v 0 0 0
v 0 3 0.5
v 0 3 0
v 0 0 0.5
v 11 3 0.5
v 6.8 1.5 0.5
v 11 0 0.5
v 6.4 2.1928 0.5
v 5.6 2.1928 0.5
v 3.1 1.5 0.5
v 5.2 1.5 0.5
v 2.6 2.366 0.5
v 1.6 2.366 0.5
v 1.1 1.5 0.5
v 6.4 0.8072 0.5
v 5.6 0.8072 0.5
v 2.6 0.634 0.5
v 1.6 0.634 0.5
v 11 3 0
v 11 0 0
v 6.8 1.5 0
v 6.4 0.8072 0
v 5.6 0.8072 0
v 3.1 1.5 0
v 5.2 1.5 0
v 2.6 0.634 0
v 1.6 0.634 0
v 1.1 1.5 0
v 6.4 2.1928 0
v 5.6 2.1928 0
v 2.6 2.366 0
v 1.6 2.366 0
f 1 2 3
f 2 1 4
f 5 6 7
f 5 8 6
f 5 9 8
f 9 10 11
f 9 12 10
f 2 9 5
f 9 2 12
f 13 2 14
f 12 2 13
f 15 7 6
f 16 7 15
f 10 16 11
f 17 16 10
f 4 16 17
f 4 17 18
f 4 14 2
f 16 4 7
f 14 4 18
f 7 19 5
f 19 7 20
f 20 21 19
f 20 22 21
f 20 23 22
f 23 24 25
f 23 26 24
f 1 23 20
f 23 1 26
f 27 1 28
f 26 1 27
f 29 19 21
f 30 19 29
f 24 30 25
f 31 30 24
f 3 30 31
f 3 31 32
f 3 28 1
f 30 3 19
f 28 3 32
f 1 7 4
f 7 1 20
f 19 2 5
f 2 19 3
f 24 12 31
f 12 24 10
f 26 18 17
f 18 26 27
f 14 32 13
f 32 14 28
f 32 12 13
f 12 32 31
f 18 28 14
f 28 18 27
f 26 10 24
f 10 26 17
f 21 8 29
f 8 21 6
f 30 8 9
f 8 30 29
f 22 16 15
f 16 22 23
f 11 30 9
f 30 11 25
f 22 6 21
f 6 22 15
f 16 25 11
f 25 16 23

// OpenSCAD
difference() {
  translate([5.5000000000, 1.5000000000, 0.2500000000]) {
    scale([11.0000000000, 3.0000000000, 0.5000000000]) {
      translate([-0.5000000000, -0.5000000000, -0.5000000000]) {
        cube([1, 1, 1]);
      }
    }
  }
  union() {
    difference() {
      translate([6.0000000000, 1.4999996667, 0.2500000000]) {
        scale([1.6000000000, 1.3860000000, 0.5000000000]) {
          rotate([0.0000000000, 0.0000000000, -0.0000000000]) {
            scale([0.5, 0.577, 1]) cylinder($fn = 6, center = true);
          }
        }
      }
      /* EMPTY */ sphere(r = 0);
    }
    difference() {
      translate([2.1000000000, 1.4999994660, 0.2500000000]) {
        scale([2.0000000000, 1.7320000000, 0.5000000000]) {
          rotate([0.0000000000, 0.0000000000, -0.0000000000]) {
            scale([0.5, 0.577, 1]) cylinder($fn = 6, center = true);
          }
        }
      }
      /* EMPTY */ sphere(r = 0);
    }
  }
}
